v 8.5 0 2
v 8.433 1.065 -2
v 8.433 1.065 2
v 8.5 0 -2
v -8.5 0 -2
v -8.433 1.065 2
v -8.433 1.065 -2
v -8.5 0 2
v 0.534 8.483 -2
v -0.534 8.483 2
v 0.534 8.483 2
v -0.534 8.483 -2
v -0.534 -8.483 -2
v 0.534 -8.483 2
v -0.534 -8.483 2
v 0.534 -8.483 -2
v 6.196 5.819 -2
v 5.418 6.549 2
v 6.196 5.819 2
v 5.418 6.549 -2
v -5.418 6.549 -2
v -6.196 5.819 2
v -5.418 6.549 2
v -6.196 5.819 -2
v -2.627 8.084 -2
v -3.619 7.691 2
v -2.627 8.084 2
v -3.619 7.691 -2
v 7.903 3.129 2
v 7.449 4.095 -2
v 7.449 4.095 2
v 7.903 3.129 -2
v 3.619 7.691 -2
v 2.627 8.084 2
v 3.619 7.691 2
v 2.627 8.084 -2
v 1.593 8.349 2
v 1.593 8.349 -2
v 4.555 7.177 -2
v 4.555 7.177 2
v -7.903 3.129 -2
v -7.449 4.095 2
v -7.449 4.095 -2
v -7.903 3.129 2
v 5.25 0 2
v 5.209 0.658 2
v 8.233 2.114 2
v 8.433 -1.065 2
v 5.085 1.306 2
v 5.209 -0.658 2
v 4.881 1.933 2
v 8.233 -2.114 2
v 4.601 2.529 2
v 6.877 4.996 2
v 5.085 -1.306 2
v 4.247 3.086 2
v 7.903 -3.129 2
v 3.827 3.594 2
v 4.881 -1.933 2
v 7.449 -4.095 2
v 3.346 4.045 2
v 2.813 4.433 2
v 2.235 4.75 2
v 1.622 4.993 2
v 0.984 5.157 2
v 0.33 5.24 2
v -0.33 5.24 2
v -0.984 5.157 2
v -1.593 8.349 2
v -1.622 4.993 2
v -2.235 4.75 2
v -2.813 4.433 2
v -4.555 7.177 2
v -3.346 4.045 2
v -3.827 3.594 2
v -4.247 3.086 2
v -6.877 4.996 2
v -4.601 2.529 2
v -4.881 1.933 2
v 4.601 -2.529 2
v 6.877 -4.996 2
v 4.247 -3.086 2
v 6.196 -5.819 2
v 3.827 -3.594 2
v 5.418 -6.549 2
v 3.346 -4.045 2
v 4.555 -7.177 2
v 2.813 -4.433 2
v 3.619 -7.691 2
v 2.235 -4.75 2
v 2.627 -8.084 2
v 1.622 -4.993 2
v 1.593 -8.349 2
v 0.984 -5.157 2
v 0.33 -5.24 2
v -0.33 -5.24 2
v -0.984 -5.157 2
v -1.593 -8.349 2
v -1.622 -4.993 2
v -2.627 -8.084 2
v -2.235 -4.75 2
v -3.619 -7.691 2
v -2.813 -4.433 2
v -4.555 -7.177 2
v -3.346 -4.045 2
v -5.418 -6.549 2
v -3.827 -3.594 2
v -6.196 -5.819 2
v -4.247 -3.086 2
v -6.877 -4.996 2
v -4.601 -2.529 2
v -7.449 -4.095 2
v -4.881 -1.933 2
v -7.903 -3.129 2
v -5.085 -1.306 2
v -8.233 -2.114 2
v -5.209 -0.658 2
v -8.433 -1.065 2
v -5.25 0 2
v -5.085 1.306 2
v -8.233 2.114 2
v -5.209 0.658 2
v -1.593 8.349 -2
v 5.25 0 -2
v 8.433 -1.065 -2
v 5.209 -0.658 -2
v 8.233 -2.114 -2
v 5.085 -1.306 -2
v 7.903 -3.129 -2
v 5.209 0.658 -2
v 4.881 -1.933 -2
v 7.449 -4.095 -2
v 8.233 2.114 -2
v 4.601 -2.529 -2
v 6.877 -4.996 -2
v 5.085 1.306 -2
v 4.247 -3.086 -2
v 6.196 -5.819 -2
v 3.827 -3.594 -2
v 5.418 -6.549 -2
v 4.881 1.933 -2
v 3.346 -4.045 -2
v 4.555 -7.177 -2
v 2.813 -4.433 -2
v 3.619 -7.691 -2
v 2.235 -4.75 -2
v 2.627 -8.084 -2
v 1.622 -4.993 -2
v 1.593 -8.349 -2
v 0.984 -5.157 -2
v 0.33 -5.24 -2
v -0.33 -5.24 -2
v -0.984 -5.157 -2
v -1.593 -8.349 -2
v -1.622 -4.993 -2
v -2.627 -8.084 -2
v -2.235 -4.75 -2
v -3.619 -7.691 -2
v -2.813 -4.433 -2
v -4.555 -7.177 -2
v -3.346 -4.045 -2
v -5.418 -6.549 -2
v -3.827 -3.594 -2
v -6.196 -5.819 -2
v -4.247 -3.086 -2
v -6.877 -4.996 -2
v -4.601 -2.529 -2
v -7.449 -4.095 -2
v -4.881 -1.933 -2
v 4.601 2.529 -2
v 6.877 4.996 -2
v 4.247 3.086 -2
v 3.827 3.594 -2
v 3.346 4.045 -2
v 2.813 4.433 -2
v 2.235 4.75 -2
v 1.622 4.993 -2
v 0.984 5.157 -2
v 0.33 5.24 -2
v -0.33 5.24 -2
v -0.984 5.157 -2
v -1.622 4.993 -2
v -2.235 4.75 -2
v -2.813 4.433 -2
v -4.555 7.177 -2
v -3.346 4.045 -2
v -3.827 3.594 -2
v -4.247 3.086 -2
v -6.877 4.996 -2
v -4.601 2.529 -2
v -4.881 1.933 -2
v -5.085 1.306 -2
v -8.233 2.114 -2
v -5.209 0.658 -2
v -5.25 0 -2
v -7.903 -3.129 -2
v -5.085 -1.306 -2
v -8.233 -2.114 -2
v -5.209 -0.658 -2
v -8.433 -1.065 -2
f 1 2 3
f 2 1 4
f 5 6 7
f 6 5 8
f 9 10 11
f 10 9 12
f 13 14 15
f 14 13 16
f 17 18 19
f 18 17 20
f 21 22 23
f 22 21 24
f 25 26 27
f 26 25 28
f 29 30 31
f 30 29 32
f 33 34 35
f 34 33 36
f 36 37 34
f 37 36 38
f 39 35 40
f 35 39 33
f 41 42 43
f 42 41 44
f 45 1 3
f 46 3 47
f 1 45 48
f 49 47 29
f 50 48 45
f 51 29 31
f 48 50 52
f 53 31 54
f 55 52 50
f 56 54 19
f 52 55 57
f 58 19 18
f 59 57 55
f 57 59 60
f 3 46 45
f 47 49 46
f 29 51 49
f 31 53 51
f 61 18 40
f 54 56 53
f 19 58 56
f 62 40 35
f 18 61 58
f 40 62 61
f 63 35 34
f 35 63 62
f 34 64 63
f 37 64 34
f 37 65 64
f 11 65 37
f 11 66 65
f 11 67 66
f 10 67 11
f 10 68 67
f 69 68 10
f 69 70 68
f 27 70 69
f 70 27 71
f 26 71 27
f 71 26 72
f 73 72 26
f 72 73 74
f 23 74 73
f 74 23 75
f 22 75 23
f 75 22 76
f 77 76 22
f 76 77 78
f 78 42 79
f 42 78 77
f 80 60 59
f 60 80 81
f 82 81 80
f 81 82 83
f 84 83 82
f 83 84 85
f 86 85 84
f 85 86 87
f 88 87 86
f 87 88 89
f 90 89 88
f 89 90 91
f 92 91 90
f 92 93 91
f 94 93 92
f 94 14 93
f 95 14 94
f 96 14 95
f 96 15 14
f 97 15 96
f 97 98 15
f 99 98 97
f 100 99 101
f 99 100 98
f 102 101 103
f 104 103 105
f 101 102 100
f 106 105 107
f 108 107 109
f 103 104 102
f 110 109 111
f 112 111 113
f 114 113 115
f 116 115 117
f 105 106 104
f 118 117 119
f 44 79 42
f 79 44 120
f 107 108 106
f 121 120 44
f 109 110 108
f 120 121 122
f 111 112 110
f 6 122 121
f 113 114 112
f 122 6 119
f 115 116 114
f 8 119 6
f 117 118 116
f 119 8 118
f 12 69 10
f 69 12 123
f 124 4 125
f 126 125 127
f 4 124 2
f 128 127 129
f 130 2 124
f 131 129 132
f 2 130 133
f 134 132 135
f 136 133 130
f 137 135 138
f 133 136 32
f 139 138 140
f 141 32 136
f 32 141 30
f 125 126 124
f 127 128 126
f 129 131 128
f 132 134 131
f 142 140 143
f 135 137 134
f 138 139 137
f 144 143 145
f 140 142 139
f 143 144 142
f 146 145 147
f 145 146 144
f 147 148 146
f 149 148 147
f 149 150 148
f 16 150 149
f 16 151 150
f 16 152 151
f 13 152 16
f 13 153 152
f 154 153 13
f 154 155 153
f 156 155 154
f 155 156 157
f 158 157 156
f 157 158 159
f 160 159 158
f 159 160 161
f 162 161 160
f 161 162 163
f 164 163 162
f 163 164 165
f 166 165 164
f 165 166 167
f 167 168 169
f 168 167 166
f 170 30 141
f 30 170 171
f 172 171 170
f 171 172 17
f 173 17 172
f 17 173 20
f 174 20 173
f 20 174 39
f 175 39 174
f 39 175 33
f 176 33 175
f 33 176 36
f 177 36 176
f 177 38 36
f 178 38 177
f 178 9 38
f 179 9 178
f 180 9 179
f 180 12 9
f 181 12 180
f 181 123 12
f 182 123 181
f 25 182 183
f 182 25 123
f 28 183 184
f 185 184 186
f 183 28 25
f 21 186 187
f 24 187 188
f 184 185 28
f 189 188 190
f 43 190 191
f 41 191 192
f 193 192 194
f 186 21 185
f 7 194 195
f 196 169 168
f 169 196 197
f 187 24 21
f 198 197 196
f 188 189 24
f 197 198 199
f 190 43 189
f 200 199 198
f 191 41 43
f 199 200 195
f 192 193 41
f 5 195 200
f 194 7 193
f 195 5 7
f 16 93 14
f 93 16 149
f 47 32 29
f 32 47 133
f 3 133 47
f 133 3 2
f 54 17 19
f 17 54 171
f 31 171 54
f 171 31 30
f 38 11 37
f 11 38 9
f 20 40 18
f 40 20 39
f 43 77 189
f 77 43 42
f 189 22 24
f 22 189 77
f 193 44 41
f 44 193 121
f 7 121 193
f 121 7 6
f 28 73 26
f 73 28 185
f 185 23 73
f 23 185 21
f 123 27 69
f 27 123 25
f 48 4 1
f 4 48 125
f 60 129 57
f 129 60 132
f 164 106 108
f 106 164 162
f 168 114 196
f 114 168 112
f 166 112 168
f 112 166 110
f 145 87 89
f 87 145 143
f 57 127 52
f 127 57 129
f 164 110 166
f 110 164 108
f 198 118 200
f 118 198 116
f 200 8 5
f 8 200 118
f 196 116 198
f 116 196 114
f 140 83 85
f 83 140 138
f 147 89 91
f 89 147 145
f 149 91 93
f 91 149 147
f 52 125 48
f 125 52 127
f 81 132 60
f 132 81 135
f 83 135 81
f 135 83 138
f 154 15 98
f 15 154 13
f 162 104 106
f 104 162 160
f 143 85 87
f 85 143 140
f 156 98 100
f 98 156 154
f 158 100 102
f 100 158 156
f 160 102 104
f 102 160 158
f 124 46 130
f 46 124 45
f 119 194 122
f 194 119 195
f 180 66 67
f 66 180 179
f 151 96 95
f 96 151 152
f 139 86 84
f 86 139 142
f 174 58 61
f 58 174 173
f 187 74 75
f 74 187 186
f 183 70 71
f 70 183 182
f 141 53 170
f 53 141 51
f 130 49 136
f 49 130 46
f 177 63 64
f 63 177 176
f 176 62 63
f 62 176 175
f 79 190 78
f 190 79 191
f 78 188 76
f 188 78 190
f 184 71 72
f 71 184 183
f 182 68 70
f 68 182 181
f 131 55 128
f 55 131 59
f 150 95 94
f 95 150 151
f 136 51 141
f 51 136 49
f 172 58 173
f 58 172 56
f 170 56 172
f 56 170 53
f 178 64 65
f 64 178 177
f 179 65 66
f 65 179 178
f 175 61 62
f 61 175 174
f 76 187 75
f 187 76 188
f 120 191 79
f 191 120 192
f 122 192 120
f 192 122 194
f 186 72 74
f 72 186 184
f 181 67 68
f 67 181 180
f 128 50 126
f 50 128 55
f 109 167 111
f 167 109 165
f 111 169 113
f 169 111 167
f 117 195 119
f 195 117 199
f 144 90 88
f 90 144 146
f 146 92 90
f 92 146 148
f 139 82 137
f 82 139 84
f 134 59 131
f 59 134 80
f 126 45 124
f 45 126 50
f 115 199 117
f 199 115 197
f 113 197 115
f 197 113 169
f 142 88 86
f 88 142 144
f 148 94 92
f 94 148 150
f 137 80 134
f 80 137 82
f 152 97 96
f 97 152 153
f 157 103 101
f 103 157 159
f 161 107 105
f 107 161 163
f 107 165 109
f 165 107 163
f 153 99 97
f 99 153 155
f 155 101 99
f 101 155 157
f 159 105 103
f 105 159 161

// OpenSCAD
$fn = 50;


difference() {
	union() {
		translate(v = [0, 0, -2.0000000000]) {
			cylinder(h = 4, r = 8.5000000000);
		}
	}
	union() {
		translate(v = [0, 0, -100.0000000000]) {
			cylinder(h = 200, r = 5.2500000000);
		}
	}
}
